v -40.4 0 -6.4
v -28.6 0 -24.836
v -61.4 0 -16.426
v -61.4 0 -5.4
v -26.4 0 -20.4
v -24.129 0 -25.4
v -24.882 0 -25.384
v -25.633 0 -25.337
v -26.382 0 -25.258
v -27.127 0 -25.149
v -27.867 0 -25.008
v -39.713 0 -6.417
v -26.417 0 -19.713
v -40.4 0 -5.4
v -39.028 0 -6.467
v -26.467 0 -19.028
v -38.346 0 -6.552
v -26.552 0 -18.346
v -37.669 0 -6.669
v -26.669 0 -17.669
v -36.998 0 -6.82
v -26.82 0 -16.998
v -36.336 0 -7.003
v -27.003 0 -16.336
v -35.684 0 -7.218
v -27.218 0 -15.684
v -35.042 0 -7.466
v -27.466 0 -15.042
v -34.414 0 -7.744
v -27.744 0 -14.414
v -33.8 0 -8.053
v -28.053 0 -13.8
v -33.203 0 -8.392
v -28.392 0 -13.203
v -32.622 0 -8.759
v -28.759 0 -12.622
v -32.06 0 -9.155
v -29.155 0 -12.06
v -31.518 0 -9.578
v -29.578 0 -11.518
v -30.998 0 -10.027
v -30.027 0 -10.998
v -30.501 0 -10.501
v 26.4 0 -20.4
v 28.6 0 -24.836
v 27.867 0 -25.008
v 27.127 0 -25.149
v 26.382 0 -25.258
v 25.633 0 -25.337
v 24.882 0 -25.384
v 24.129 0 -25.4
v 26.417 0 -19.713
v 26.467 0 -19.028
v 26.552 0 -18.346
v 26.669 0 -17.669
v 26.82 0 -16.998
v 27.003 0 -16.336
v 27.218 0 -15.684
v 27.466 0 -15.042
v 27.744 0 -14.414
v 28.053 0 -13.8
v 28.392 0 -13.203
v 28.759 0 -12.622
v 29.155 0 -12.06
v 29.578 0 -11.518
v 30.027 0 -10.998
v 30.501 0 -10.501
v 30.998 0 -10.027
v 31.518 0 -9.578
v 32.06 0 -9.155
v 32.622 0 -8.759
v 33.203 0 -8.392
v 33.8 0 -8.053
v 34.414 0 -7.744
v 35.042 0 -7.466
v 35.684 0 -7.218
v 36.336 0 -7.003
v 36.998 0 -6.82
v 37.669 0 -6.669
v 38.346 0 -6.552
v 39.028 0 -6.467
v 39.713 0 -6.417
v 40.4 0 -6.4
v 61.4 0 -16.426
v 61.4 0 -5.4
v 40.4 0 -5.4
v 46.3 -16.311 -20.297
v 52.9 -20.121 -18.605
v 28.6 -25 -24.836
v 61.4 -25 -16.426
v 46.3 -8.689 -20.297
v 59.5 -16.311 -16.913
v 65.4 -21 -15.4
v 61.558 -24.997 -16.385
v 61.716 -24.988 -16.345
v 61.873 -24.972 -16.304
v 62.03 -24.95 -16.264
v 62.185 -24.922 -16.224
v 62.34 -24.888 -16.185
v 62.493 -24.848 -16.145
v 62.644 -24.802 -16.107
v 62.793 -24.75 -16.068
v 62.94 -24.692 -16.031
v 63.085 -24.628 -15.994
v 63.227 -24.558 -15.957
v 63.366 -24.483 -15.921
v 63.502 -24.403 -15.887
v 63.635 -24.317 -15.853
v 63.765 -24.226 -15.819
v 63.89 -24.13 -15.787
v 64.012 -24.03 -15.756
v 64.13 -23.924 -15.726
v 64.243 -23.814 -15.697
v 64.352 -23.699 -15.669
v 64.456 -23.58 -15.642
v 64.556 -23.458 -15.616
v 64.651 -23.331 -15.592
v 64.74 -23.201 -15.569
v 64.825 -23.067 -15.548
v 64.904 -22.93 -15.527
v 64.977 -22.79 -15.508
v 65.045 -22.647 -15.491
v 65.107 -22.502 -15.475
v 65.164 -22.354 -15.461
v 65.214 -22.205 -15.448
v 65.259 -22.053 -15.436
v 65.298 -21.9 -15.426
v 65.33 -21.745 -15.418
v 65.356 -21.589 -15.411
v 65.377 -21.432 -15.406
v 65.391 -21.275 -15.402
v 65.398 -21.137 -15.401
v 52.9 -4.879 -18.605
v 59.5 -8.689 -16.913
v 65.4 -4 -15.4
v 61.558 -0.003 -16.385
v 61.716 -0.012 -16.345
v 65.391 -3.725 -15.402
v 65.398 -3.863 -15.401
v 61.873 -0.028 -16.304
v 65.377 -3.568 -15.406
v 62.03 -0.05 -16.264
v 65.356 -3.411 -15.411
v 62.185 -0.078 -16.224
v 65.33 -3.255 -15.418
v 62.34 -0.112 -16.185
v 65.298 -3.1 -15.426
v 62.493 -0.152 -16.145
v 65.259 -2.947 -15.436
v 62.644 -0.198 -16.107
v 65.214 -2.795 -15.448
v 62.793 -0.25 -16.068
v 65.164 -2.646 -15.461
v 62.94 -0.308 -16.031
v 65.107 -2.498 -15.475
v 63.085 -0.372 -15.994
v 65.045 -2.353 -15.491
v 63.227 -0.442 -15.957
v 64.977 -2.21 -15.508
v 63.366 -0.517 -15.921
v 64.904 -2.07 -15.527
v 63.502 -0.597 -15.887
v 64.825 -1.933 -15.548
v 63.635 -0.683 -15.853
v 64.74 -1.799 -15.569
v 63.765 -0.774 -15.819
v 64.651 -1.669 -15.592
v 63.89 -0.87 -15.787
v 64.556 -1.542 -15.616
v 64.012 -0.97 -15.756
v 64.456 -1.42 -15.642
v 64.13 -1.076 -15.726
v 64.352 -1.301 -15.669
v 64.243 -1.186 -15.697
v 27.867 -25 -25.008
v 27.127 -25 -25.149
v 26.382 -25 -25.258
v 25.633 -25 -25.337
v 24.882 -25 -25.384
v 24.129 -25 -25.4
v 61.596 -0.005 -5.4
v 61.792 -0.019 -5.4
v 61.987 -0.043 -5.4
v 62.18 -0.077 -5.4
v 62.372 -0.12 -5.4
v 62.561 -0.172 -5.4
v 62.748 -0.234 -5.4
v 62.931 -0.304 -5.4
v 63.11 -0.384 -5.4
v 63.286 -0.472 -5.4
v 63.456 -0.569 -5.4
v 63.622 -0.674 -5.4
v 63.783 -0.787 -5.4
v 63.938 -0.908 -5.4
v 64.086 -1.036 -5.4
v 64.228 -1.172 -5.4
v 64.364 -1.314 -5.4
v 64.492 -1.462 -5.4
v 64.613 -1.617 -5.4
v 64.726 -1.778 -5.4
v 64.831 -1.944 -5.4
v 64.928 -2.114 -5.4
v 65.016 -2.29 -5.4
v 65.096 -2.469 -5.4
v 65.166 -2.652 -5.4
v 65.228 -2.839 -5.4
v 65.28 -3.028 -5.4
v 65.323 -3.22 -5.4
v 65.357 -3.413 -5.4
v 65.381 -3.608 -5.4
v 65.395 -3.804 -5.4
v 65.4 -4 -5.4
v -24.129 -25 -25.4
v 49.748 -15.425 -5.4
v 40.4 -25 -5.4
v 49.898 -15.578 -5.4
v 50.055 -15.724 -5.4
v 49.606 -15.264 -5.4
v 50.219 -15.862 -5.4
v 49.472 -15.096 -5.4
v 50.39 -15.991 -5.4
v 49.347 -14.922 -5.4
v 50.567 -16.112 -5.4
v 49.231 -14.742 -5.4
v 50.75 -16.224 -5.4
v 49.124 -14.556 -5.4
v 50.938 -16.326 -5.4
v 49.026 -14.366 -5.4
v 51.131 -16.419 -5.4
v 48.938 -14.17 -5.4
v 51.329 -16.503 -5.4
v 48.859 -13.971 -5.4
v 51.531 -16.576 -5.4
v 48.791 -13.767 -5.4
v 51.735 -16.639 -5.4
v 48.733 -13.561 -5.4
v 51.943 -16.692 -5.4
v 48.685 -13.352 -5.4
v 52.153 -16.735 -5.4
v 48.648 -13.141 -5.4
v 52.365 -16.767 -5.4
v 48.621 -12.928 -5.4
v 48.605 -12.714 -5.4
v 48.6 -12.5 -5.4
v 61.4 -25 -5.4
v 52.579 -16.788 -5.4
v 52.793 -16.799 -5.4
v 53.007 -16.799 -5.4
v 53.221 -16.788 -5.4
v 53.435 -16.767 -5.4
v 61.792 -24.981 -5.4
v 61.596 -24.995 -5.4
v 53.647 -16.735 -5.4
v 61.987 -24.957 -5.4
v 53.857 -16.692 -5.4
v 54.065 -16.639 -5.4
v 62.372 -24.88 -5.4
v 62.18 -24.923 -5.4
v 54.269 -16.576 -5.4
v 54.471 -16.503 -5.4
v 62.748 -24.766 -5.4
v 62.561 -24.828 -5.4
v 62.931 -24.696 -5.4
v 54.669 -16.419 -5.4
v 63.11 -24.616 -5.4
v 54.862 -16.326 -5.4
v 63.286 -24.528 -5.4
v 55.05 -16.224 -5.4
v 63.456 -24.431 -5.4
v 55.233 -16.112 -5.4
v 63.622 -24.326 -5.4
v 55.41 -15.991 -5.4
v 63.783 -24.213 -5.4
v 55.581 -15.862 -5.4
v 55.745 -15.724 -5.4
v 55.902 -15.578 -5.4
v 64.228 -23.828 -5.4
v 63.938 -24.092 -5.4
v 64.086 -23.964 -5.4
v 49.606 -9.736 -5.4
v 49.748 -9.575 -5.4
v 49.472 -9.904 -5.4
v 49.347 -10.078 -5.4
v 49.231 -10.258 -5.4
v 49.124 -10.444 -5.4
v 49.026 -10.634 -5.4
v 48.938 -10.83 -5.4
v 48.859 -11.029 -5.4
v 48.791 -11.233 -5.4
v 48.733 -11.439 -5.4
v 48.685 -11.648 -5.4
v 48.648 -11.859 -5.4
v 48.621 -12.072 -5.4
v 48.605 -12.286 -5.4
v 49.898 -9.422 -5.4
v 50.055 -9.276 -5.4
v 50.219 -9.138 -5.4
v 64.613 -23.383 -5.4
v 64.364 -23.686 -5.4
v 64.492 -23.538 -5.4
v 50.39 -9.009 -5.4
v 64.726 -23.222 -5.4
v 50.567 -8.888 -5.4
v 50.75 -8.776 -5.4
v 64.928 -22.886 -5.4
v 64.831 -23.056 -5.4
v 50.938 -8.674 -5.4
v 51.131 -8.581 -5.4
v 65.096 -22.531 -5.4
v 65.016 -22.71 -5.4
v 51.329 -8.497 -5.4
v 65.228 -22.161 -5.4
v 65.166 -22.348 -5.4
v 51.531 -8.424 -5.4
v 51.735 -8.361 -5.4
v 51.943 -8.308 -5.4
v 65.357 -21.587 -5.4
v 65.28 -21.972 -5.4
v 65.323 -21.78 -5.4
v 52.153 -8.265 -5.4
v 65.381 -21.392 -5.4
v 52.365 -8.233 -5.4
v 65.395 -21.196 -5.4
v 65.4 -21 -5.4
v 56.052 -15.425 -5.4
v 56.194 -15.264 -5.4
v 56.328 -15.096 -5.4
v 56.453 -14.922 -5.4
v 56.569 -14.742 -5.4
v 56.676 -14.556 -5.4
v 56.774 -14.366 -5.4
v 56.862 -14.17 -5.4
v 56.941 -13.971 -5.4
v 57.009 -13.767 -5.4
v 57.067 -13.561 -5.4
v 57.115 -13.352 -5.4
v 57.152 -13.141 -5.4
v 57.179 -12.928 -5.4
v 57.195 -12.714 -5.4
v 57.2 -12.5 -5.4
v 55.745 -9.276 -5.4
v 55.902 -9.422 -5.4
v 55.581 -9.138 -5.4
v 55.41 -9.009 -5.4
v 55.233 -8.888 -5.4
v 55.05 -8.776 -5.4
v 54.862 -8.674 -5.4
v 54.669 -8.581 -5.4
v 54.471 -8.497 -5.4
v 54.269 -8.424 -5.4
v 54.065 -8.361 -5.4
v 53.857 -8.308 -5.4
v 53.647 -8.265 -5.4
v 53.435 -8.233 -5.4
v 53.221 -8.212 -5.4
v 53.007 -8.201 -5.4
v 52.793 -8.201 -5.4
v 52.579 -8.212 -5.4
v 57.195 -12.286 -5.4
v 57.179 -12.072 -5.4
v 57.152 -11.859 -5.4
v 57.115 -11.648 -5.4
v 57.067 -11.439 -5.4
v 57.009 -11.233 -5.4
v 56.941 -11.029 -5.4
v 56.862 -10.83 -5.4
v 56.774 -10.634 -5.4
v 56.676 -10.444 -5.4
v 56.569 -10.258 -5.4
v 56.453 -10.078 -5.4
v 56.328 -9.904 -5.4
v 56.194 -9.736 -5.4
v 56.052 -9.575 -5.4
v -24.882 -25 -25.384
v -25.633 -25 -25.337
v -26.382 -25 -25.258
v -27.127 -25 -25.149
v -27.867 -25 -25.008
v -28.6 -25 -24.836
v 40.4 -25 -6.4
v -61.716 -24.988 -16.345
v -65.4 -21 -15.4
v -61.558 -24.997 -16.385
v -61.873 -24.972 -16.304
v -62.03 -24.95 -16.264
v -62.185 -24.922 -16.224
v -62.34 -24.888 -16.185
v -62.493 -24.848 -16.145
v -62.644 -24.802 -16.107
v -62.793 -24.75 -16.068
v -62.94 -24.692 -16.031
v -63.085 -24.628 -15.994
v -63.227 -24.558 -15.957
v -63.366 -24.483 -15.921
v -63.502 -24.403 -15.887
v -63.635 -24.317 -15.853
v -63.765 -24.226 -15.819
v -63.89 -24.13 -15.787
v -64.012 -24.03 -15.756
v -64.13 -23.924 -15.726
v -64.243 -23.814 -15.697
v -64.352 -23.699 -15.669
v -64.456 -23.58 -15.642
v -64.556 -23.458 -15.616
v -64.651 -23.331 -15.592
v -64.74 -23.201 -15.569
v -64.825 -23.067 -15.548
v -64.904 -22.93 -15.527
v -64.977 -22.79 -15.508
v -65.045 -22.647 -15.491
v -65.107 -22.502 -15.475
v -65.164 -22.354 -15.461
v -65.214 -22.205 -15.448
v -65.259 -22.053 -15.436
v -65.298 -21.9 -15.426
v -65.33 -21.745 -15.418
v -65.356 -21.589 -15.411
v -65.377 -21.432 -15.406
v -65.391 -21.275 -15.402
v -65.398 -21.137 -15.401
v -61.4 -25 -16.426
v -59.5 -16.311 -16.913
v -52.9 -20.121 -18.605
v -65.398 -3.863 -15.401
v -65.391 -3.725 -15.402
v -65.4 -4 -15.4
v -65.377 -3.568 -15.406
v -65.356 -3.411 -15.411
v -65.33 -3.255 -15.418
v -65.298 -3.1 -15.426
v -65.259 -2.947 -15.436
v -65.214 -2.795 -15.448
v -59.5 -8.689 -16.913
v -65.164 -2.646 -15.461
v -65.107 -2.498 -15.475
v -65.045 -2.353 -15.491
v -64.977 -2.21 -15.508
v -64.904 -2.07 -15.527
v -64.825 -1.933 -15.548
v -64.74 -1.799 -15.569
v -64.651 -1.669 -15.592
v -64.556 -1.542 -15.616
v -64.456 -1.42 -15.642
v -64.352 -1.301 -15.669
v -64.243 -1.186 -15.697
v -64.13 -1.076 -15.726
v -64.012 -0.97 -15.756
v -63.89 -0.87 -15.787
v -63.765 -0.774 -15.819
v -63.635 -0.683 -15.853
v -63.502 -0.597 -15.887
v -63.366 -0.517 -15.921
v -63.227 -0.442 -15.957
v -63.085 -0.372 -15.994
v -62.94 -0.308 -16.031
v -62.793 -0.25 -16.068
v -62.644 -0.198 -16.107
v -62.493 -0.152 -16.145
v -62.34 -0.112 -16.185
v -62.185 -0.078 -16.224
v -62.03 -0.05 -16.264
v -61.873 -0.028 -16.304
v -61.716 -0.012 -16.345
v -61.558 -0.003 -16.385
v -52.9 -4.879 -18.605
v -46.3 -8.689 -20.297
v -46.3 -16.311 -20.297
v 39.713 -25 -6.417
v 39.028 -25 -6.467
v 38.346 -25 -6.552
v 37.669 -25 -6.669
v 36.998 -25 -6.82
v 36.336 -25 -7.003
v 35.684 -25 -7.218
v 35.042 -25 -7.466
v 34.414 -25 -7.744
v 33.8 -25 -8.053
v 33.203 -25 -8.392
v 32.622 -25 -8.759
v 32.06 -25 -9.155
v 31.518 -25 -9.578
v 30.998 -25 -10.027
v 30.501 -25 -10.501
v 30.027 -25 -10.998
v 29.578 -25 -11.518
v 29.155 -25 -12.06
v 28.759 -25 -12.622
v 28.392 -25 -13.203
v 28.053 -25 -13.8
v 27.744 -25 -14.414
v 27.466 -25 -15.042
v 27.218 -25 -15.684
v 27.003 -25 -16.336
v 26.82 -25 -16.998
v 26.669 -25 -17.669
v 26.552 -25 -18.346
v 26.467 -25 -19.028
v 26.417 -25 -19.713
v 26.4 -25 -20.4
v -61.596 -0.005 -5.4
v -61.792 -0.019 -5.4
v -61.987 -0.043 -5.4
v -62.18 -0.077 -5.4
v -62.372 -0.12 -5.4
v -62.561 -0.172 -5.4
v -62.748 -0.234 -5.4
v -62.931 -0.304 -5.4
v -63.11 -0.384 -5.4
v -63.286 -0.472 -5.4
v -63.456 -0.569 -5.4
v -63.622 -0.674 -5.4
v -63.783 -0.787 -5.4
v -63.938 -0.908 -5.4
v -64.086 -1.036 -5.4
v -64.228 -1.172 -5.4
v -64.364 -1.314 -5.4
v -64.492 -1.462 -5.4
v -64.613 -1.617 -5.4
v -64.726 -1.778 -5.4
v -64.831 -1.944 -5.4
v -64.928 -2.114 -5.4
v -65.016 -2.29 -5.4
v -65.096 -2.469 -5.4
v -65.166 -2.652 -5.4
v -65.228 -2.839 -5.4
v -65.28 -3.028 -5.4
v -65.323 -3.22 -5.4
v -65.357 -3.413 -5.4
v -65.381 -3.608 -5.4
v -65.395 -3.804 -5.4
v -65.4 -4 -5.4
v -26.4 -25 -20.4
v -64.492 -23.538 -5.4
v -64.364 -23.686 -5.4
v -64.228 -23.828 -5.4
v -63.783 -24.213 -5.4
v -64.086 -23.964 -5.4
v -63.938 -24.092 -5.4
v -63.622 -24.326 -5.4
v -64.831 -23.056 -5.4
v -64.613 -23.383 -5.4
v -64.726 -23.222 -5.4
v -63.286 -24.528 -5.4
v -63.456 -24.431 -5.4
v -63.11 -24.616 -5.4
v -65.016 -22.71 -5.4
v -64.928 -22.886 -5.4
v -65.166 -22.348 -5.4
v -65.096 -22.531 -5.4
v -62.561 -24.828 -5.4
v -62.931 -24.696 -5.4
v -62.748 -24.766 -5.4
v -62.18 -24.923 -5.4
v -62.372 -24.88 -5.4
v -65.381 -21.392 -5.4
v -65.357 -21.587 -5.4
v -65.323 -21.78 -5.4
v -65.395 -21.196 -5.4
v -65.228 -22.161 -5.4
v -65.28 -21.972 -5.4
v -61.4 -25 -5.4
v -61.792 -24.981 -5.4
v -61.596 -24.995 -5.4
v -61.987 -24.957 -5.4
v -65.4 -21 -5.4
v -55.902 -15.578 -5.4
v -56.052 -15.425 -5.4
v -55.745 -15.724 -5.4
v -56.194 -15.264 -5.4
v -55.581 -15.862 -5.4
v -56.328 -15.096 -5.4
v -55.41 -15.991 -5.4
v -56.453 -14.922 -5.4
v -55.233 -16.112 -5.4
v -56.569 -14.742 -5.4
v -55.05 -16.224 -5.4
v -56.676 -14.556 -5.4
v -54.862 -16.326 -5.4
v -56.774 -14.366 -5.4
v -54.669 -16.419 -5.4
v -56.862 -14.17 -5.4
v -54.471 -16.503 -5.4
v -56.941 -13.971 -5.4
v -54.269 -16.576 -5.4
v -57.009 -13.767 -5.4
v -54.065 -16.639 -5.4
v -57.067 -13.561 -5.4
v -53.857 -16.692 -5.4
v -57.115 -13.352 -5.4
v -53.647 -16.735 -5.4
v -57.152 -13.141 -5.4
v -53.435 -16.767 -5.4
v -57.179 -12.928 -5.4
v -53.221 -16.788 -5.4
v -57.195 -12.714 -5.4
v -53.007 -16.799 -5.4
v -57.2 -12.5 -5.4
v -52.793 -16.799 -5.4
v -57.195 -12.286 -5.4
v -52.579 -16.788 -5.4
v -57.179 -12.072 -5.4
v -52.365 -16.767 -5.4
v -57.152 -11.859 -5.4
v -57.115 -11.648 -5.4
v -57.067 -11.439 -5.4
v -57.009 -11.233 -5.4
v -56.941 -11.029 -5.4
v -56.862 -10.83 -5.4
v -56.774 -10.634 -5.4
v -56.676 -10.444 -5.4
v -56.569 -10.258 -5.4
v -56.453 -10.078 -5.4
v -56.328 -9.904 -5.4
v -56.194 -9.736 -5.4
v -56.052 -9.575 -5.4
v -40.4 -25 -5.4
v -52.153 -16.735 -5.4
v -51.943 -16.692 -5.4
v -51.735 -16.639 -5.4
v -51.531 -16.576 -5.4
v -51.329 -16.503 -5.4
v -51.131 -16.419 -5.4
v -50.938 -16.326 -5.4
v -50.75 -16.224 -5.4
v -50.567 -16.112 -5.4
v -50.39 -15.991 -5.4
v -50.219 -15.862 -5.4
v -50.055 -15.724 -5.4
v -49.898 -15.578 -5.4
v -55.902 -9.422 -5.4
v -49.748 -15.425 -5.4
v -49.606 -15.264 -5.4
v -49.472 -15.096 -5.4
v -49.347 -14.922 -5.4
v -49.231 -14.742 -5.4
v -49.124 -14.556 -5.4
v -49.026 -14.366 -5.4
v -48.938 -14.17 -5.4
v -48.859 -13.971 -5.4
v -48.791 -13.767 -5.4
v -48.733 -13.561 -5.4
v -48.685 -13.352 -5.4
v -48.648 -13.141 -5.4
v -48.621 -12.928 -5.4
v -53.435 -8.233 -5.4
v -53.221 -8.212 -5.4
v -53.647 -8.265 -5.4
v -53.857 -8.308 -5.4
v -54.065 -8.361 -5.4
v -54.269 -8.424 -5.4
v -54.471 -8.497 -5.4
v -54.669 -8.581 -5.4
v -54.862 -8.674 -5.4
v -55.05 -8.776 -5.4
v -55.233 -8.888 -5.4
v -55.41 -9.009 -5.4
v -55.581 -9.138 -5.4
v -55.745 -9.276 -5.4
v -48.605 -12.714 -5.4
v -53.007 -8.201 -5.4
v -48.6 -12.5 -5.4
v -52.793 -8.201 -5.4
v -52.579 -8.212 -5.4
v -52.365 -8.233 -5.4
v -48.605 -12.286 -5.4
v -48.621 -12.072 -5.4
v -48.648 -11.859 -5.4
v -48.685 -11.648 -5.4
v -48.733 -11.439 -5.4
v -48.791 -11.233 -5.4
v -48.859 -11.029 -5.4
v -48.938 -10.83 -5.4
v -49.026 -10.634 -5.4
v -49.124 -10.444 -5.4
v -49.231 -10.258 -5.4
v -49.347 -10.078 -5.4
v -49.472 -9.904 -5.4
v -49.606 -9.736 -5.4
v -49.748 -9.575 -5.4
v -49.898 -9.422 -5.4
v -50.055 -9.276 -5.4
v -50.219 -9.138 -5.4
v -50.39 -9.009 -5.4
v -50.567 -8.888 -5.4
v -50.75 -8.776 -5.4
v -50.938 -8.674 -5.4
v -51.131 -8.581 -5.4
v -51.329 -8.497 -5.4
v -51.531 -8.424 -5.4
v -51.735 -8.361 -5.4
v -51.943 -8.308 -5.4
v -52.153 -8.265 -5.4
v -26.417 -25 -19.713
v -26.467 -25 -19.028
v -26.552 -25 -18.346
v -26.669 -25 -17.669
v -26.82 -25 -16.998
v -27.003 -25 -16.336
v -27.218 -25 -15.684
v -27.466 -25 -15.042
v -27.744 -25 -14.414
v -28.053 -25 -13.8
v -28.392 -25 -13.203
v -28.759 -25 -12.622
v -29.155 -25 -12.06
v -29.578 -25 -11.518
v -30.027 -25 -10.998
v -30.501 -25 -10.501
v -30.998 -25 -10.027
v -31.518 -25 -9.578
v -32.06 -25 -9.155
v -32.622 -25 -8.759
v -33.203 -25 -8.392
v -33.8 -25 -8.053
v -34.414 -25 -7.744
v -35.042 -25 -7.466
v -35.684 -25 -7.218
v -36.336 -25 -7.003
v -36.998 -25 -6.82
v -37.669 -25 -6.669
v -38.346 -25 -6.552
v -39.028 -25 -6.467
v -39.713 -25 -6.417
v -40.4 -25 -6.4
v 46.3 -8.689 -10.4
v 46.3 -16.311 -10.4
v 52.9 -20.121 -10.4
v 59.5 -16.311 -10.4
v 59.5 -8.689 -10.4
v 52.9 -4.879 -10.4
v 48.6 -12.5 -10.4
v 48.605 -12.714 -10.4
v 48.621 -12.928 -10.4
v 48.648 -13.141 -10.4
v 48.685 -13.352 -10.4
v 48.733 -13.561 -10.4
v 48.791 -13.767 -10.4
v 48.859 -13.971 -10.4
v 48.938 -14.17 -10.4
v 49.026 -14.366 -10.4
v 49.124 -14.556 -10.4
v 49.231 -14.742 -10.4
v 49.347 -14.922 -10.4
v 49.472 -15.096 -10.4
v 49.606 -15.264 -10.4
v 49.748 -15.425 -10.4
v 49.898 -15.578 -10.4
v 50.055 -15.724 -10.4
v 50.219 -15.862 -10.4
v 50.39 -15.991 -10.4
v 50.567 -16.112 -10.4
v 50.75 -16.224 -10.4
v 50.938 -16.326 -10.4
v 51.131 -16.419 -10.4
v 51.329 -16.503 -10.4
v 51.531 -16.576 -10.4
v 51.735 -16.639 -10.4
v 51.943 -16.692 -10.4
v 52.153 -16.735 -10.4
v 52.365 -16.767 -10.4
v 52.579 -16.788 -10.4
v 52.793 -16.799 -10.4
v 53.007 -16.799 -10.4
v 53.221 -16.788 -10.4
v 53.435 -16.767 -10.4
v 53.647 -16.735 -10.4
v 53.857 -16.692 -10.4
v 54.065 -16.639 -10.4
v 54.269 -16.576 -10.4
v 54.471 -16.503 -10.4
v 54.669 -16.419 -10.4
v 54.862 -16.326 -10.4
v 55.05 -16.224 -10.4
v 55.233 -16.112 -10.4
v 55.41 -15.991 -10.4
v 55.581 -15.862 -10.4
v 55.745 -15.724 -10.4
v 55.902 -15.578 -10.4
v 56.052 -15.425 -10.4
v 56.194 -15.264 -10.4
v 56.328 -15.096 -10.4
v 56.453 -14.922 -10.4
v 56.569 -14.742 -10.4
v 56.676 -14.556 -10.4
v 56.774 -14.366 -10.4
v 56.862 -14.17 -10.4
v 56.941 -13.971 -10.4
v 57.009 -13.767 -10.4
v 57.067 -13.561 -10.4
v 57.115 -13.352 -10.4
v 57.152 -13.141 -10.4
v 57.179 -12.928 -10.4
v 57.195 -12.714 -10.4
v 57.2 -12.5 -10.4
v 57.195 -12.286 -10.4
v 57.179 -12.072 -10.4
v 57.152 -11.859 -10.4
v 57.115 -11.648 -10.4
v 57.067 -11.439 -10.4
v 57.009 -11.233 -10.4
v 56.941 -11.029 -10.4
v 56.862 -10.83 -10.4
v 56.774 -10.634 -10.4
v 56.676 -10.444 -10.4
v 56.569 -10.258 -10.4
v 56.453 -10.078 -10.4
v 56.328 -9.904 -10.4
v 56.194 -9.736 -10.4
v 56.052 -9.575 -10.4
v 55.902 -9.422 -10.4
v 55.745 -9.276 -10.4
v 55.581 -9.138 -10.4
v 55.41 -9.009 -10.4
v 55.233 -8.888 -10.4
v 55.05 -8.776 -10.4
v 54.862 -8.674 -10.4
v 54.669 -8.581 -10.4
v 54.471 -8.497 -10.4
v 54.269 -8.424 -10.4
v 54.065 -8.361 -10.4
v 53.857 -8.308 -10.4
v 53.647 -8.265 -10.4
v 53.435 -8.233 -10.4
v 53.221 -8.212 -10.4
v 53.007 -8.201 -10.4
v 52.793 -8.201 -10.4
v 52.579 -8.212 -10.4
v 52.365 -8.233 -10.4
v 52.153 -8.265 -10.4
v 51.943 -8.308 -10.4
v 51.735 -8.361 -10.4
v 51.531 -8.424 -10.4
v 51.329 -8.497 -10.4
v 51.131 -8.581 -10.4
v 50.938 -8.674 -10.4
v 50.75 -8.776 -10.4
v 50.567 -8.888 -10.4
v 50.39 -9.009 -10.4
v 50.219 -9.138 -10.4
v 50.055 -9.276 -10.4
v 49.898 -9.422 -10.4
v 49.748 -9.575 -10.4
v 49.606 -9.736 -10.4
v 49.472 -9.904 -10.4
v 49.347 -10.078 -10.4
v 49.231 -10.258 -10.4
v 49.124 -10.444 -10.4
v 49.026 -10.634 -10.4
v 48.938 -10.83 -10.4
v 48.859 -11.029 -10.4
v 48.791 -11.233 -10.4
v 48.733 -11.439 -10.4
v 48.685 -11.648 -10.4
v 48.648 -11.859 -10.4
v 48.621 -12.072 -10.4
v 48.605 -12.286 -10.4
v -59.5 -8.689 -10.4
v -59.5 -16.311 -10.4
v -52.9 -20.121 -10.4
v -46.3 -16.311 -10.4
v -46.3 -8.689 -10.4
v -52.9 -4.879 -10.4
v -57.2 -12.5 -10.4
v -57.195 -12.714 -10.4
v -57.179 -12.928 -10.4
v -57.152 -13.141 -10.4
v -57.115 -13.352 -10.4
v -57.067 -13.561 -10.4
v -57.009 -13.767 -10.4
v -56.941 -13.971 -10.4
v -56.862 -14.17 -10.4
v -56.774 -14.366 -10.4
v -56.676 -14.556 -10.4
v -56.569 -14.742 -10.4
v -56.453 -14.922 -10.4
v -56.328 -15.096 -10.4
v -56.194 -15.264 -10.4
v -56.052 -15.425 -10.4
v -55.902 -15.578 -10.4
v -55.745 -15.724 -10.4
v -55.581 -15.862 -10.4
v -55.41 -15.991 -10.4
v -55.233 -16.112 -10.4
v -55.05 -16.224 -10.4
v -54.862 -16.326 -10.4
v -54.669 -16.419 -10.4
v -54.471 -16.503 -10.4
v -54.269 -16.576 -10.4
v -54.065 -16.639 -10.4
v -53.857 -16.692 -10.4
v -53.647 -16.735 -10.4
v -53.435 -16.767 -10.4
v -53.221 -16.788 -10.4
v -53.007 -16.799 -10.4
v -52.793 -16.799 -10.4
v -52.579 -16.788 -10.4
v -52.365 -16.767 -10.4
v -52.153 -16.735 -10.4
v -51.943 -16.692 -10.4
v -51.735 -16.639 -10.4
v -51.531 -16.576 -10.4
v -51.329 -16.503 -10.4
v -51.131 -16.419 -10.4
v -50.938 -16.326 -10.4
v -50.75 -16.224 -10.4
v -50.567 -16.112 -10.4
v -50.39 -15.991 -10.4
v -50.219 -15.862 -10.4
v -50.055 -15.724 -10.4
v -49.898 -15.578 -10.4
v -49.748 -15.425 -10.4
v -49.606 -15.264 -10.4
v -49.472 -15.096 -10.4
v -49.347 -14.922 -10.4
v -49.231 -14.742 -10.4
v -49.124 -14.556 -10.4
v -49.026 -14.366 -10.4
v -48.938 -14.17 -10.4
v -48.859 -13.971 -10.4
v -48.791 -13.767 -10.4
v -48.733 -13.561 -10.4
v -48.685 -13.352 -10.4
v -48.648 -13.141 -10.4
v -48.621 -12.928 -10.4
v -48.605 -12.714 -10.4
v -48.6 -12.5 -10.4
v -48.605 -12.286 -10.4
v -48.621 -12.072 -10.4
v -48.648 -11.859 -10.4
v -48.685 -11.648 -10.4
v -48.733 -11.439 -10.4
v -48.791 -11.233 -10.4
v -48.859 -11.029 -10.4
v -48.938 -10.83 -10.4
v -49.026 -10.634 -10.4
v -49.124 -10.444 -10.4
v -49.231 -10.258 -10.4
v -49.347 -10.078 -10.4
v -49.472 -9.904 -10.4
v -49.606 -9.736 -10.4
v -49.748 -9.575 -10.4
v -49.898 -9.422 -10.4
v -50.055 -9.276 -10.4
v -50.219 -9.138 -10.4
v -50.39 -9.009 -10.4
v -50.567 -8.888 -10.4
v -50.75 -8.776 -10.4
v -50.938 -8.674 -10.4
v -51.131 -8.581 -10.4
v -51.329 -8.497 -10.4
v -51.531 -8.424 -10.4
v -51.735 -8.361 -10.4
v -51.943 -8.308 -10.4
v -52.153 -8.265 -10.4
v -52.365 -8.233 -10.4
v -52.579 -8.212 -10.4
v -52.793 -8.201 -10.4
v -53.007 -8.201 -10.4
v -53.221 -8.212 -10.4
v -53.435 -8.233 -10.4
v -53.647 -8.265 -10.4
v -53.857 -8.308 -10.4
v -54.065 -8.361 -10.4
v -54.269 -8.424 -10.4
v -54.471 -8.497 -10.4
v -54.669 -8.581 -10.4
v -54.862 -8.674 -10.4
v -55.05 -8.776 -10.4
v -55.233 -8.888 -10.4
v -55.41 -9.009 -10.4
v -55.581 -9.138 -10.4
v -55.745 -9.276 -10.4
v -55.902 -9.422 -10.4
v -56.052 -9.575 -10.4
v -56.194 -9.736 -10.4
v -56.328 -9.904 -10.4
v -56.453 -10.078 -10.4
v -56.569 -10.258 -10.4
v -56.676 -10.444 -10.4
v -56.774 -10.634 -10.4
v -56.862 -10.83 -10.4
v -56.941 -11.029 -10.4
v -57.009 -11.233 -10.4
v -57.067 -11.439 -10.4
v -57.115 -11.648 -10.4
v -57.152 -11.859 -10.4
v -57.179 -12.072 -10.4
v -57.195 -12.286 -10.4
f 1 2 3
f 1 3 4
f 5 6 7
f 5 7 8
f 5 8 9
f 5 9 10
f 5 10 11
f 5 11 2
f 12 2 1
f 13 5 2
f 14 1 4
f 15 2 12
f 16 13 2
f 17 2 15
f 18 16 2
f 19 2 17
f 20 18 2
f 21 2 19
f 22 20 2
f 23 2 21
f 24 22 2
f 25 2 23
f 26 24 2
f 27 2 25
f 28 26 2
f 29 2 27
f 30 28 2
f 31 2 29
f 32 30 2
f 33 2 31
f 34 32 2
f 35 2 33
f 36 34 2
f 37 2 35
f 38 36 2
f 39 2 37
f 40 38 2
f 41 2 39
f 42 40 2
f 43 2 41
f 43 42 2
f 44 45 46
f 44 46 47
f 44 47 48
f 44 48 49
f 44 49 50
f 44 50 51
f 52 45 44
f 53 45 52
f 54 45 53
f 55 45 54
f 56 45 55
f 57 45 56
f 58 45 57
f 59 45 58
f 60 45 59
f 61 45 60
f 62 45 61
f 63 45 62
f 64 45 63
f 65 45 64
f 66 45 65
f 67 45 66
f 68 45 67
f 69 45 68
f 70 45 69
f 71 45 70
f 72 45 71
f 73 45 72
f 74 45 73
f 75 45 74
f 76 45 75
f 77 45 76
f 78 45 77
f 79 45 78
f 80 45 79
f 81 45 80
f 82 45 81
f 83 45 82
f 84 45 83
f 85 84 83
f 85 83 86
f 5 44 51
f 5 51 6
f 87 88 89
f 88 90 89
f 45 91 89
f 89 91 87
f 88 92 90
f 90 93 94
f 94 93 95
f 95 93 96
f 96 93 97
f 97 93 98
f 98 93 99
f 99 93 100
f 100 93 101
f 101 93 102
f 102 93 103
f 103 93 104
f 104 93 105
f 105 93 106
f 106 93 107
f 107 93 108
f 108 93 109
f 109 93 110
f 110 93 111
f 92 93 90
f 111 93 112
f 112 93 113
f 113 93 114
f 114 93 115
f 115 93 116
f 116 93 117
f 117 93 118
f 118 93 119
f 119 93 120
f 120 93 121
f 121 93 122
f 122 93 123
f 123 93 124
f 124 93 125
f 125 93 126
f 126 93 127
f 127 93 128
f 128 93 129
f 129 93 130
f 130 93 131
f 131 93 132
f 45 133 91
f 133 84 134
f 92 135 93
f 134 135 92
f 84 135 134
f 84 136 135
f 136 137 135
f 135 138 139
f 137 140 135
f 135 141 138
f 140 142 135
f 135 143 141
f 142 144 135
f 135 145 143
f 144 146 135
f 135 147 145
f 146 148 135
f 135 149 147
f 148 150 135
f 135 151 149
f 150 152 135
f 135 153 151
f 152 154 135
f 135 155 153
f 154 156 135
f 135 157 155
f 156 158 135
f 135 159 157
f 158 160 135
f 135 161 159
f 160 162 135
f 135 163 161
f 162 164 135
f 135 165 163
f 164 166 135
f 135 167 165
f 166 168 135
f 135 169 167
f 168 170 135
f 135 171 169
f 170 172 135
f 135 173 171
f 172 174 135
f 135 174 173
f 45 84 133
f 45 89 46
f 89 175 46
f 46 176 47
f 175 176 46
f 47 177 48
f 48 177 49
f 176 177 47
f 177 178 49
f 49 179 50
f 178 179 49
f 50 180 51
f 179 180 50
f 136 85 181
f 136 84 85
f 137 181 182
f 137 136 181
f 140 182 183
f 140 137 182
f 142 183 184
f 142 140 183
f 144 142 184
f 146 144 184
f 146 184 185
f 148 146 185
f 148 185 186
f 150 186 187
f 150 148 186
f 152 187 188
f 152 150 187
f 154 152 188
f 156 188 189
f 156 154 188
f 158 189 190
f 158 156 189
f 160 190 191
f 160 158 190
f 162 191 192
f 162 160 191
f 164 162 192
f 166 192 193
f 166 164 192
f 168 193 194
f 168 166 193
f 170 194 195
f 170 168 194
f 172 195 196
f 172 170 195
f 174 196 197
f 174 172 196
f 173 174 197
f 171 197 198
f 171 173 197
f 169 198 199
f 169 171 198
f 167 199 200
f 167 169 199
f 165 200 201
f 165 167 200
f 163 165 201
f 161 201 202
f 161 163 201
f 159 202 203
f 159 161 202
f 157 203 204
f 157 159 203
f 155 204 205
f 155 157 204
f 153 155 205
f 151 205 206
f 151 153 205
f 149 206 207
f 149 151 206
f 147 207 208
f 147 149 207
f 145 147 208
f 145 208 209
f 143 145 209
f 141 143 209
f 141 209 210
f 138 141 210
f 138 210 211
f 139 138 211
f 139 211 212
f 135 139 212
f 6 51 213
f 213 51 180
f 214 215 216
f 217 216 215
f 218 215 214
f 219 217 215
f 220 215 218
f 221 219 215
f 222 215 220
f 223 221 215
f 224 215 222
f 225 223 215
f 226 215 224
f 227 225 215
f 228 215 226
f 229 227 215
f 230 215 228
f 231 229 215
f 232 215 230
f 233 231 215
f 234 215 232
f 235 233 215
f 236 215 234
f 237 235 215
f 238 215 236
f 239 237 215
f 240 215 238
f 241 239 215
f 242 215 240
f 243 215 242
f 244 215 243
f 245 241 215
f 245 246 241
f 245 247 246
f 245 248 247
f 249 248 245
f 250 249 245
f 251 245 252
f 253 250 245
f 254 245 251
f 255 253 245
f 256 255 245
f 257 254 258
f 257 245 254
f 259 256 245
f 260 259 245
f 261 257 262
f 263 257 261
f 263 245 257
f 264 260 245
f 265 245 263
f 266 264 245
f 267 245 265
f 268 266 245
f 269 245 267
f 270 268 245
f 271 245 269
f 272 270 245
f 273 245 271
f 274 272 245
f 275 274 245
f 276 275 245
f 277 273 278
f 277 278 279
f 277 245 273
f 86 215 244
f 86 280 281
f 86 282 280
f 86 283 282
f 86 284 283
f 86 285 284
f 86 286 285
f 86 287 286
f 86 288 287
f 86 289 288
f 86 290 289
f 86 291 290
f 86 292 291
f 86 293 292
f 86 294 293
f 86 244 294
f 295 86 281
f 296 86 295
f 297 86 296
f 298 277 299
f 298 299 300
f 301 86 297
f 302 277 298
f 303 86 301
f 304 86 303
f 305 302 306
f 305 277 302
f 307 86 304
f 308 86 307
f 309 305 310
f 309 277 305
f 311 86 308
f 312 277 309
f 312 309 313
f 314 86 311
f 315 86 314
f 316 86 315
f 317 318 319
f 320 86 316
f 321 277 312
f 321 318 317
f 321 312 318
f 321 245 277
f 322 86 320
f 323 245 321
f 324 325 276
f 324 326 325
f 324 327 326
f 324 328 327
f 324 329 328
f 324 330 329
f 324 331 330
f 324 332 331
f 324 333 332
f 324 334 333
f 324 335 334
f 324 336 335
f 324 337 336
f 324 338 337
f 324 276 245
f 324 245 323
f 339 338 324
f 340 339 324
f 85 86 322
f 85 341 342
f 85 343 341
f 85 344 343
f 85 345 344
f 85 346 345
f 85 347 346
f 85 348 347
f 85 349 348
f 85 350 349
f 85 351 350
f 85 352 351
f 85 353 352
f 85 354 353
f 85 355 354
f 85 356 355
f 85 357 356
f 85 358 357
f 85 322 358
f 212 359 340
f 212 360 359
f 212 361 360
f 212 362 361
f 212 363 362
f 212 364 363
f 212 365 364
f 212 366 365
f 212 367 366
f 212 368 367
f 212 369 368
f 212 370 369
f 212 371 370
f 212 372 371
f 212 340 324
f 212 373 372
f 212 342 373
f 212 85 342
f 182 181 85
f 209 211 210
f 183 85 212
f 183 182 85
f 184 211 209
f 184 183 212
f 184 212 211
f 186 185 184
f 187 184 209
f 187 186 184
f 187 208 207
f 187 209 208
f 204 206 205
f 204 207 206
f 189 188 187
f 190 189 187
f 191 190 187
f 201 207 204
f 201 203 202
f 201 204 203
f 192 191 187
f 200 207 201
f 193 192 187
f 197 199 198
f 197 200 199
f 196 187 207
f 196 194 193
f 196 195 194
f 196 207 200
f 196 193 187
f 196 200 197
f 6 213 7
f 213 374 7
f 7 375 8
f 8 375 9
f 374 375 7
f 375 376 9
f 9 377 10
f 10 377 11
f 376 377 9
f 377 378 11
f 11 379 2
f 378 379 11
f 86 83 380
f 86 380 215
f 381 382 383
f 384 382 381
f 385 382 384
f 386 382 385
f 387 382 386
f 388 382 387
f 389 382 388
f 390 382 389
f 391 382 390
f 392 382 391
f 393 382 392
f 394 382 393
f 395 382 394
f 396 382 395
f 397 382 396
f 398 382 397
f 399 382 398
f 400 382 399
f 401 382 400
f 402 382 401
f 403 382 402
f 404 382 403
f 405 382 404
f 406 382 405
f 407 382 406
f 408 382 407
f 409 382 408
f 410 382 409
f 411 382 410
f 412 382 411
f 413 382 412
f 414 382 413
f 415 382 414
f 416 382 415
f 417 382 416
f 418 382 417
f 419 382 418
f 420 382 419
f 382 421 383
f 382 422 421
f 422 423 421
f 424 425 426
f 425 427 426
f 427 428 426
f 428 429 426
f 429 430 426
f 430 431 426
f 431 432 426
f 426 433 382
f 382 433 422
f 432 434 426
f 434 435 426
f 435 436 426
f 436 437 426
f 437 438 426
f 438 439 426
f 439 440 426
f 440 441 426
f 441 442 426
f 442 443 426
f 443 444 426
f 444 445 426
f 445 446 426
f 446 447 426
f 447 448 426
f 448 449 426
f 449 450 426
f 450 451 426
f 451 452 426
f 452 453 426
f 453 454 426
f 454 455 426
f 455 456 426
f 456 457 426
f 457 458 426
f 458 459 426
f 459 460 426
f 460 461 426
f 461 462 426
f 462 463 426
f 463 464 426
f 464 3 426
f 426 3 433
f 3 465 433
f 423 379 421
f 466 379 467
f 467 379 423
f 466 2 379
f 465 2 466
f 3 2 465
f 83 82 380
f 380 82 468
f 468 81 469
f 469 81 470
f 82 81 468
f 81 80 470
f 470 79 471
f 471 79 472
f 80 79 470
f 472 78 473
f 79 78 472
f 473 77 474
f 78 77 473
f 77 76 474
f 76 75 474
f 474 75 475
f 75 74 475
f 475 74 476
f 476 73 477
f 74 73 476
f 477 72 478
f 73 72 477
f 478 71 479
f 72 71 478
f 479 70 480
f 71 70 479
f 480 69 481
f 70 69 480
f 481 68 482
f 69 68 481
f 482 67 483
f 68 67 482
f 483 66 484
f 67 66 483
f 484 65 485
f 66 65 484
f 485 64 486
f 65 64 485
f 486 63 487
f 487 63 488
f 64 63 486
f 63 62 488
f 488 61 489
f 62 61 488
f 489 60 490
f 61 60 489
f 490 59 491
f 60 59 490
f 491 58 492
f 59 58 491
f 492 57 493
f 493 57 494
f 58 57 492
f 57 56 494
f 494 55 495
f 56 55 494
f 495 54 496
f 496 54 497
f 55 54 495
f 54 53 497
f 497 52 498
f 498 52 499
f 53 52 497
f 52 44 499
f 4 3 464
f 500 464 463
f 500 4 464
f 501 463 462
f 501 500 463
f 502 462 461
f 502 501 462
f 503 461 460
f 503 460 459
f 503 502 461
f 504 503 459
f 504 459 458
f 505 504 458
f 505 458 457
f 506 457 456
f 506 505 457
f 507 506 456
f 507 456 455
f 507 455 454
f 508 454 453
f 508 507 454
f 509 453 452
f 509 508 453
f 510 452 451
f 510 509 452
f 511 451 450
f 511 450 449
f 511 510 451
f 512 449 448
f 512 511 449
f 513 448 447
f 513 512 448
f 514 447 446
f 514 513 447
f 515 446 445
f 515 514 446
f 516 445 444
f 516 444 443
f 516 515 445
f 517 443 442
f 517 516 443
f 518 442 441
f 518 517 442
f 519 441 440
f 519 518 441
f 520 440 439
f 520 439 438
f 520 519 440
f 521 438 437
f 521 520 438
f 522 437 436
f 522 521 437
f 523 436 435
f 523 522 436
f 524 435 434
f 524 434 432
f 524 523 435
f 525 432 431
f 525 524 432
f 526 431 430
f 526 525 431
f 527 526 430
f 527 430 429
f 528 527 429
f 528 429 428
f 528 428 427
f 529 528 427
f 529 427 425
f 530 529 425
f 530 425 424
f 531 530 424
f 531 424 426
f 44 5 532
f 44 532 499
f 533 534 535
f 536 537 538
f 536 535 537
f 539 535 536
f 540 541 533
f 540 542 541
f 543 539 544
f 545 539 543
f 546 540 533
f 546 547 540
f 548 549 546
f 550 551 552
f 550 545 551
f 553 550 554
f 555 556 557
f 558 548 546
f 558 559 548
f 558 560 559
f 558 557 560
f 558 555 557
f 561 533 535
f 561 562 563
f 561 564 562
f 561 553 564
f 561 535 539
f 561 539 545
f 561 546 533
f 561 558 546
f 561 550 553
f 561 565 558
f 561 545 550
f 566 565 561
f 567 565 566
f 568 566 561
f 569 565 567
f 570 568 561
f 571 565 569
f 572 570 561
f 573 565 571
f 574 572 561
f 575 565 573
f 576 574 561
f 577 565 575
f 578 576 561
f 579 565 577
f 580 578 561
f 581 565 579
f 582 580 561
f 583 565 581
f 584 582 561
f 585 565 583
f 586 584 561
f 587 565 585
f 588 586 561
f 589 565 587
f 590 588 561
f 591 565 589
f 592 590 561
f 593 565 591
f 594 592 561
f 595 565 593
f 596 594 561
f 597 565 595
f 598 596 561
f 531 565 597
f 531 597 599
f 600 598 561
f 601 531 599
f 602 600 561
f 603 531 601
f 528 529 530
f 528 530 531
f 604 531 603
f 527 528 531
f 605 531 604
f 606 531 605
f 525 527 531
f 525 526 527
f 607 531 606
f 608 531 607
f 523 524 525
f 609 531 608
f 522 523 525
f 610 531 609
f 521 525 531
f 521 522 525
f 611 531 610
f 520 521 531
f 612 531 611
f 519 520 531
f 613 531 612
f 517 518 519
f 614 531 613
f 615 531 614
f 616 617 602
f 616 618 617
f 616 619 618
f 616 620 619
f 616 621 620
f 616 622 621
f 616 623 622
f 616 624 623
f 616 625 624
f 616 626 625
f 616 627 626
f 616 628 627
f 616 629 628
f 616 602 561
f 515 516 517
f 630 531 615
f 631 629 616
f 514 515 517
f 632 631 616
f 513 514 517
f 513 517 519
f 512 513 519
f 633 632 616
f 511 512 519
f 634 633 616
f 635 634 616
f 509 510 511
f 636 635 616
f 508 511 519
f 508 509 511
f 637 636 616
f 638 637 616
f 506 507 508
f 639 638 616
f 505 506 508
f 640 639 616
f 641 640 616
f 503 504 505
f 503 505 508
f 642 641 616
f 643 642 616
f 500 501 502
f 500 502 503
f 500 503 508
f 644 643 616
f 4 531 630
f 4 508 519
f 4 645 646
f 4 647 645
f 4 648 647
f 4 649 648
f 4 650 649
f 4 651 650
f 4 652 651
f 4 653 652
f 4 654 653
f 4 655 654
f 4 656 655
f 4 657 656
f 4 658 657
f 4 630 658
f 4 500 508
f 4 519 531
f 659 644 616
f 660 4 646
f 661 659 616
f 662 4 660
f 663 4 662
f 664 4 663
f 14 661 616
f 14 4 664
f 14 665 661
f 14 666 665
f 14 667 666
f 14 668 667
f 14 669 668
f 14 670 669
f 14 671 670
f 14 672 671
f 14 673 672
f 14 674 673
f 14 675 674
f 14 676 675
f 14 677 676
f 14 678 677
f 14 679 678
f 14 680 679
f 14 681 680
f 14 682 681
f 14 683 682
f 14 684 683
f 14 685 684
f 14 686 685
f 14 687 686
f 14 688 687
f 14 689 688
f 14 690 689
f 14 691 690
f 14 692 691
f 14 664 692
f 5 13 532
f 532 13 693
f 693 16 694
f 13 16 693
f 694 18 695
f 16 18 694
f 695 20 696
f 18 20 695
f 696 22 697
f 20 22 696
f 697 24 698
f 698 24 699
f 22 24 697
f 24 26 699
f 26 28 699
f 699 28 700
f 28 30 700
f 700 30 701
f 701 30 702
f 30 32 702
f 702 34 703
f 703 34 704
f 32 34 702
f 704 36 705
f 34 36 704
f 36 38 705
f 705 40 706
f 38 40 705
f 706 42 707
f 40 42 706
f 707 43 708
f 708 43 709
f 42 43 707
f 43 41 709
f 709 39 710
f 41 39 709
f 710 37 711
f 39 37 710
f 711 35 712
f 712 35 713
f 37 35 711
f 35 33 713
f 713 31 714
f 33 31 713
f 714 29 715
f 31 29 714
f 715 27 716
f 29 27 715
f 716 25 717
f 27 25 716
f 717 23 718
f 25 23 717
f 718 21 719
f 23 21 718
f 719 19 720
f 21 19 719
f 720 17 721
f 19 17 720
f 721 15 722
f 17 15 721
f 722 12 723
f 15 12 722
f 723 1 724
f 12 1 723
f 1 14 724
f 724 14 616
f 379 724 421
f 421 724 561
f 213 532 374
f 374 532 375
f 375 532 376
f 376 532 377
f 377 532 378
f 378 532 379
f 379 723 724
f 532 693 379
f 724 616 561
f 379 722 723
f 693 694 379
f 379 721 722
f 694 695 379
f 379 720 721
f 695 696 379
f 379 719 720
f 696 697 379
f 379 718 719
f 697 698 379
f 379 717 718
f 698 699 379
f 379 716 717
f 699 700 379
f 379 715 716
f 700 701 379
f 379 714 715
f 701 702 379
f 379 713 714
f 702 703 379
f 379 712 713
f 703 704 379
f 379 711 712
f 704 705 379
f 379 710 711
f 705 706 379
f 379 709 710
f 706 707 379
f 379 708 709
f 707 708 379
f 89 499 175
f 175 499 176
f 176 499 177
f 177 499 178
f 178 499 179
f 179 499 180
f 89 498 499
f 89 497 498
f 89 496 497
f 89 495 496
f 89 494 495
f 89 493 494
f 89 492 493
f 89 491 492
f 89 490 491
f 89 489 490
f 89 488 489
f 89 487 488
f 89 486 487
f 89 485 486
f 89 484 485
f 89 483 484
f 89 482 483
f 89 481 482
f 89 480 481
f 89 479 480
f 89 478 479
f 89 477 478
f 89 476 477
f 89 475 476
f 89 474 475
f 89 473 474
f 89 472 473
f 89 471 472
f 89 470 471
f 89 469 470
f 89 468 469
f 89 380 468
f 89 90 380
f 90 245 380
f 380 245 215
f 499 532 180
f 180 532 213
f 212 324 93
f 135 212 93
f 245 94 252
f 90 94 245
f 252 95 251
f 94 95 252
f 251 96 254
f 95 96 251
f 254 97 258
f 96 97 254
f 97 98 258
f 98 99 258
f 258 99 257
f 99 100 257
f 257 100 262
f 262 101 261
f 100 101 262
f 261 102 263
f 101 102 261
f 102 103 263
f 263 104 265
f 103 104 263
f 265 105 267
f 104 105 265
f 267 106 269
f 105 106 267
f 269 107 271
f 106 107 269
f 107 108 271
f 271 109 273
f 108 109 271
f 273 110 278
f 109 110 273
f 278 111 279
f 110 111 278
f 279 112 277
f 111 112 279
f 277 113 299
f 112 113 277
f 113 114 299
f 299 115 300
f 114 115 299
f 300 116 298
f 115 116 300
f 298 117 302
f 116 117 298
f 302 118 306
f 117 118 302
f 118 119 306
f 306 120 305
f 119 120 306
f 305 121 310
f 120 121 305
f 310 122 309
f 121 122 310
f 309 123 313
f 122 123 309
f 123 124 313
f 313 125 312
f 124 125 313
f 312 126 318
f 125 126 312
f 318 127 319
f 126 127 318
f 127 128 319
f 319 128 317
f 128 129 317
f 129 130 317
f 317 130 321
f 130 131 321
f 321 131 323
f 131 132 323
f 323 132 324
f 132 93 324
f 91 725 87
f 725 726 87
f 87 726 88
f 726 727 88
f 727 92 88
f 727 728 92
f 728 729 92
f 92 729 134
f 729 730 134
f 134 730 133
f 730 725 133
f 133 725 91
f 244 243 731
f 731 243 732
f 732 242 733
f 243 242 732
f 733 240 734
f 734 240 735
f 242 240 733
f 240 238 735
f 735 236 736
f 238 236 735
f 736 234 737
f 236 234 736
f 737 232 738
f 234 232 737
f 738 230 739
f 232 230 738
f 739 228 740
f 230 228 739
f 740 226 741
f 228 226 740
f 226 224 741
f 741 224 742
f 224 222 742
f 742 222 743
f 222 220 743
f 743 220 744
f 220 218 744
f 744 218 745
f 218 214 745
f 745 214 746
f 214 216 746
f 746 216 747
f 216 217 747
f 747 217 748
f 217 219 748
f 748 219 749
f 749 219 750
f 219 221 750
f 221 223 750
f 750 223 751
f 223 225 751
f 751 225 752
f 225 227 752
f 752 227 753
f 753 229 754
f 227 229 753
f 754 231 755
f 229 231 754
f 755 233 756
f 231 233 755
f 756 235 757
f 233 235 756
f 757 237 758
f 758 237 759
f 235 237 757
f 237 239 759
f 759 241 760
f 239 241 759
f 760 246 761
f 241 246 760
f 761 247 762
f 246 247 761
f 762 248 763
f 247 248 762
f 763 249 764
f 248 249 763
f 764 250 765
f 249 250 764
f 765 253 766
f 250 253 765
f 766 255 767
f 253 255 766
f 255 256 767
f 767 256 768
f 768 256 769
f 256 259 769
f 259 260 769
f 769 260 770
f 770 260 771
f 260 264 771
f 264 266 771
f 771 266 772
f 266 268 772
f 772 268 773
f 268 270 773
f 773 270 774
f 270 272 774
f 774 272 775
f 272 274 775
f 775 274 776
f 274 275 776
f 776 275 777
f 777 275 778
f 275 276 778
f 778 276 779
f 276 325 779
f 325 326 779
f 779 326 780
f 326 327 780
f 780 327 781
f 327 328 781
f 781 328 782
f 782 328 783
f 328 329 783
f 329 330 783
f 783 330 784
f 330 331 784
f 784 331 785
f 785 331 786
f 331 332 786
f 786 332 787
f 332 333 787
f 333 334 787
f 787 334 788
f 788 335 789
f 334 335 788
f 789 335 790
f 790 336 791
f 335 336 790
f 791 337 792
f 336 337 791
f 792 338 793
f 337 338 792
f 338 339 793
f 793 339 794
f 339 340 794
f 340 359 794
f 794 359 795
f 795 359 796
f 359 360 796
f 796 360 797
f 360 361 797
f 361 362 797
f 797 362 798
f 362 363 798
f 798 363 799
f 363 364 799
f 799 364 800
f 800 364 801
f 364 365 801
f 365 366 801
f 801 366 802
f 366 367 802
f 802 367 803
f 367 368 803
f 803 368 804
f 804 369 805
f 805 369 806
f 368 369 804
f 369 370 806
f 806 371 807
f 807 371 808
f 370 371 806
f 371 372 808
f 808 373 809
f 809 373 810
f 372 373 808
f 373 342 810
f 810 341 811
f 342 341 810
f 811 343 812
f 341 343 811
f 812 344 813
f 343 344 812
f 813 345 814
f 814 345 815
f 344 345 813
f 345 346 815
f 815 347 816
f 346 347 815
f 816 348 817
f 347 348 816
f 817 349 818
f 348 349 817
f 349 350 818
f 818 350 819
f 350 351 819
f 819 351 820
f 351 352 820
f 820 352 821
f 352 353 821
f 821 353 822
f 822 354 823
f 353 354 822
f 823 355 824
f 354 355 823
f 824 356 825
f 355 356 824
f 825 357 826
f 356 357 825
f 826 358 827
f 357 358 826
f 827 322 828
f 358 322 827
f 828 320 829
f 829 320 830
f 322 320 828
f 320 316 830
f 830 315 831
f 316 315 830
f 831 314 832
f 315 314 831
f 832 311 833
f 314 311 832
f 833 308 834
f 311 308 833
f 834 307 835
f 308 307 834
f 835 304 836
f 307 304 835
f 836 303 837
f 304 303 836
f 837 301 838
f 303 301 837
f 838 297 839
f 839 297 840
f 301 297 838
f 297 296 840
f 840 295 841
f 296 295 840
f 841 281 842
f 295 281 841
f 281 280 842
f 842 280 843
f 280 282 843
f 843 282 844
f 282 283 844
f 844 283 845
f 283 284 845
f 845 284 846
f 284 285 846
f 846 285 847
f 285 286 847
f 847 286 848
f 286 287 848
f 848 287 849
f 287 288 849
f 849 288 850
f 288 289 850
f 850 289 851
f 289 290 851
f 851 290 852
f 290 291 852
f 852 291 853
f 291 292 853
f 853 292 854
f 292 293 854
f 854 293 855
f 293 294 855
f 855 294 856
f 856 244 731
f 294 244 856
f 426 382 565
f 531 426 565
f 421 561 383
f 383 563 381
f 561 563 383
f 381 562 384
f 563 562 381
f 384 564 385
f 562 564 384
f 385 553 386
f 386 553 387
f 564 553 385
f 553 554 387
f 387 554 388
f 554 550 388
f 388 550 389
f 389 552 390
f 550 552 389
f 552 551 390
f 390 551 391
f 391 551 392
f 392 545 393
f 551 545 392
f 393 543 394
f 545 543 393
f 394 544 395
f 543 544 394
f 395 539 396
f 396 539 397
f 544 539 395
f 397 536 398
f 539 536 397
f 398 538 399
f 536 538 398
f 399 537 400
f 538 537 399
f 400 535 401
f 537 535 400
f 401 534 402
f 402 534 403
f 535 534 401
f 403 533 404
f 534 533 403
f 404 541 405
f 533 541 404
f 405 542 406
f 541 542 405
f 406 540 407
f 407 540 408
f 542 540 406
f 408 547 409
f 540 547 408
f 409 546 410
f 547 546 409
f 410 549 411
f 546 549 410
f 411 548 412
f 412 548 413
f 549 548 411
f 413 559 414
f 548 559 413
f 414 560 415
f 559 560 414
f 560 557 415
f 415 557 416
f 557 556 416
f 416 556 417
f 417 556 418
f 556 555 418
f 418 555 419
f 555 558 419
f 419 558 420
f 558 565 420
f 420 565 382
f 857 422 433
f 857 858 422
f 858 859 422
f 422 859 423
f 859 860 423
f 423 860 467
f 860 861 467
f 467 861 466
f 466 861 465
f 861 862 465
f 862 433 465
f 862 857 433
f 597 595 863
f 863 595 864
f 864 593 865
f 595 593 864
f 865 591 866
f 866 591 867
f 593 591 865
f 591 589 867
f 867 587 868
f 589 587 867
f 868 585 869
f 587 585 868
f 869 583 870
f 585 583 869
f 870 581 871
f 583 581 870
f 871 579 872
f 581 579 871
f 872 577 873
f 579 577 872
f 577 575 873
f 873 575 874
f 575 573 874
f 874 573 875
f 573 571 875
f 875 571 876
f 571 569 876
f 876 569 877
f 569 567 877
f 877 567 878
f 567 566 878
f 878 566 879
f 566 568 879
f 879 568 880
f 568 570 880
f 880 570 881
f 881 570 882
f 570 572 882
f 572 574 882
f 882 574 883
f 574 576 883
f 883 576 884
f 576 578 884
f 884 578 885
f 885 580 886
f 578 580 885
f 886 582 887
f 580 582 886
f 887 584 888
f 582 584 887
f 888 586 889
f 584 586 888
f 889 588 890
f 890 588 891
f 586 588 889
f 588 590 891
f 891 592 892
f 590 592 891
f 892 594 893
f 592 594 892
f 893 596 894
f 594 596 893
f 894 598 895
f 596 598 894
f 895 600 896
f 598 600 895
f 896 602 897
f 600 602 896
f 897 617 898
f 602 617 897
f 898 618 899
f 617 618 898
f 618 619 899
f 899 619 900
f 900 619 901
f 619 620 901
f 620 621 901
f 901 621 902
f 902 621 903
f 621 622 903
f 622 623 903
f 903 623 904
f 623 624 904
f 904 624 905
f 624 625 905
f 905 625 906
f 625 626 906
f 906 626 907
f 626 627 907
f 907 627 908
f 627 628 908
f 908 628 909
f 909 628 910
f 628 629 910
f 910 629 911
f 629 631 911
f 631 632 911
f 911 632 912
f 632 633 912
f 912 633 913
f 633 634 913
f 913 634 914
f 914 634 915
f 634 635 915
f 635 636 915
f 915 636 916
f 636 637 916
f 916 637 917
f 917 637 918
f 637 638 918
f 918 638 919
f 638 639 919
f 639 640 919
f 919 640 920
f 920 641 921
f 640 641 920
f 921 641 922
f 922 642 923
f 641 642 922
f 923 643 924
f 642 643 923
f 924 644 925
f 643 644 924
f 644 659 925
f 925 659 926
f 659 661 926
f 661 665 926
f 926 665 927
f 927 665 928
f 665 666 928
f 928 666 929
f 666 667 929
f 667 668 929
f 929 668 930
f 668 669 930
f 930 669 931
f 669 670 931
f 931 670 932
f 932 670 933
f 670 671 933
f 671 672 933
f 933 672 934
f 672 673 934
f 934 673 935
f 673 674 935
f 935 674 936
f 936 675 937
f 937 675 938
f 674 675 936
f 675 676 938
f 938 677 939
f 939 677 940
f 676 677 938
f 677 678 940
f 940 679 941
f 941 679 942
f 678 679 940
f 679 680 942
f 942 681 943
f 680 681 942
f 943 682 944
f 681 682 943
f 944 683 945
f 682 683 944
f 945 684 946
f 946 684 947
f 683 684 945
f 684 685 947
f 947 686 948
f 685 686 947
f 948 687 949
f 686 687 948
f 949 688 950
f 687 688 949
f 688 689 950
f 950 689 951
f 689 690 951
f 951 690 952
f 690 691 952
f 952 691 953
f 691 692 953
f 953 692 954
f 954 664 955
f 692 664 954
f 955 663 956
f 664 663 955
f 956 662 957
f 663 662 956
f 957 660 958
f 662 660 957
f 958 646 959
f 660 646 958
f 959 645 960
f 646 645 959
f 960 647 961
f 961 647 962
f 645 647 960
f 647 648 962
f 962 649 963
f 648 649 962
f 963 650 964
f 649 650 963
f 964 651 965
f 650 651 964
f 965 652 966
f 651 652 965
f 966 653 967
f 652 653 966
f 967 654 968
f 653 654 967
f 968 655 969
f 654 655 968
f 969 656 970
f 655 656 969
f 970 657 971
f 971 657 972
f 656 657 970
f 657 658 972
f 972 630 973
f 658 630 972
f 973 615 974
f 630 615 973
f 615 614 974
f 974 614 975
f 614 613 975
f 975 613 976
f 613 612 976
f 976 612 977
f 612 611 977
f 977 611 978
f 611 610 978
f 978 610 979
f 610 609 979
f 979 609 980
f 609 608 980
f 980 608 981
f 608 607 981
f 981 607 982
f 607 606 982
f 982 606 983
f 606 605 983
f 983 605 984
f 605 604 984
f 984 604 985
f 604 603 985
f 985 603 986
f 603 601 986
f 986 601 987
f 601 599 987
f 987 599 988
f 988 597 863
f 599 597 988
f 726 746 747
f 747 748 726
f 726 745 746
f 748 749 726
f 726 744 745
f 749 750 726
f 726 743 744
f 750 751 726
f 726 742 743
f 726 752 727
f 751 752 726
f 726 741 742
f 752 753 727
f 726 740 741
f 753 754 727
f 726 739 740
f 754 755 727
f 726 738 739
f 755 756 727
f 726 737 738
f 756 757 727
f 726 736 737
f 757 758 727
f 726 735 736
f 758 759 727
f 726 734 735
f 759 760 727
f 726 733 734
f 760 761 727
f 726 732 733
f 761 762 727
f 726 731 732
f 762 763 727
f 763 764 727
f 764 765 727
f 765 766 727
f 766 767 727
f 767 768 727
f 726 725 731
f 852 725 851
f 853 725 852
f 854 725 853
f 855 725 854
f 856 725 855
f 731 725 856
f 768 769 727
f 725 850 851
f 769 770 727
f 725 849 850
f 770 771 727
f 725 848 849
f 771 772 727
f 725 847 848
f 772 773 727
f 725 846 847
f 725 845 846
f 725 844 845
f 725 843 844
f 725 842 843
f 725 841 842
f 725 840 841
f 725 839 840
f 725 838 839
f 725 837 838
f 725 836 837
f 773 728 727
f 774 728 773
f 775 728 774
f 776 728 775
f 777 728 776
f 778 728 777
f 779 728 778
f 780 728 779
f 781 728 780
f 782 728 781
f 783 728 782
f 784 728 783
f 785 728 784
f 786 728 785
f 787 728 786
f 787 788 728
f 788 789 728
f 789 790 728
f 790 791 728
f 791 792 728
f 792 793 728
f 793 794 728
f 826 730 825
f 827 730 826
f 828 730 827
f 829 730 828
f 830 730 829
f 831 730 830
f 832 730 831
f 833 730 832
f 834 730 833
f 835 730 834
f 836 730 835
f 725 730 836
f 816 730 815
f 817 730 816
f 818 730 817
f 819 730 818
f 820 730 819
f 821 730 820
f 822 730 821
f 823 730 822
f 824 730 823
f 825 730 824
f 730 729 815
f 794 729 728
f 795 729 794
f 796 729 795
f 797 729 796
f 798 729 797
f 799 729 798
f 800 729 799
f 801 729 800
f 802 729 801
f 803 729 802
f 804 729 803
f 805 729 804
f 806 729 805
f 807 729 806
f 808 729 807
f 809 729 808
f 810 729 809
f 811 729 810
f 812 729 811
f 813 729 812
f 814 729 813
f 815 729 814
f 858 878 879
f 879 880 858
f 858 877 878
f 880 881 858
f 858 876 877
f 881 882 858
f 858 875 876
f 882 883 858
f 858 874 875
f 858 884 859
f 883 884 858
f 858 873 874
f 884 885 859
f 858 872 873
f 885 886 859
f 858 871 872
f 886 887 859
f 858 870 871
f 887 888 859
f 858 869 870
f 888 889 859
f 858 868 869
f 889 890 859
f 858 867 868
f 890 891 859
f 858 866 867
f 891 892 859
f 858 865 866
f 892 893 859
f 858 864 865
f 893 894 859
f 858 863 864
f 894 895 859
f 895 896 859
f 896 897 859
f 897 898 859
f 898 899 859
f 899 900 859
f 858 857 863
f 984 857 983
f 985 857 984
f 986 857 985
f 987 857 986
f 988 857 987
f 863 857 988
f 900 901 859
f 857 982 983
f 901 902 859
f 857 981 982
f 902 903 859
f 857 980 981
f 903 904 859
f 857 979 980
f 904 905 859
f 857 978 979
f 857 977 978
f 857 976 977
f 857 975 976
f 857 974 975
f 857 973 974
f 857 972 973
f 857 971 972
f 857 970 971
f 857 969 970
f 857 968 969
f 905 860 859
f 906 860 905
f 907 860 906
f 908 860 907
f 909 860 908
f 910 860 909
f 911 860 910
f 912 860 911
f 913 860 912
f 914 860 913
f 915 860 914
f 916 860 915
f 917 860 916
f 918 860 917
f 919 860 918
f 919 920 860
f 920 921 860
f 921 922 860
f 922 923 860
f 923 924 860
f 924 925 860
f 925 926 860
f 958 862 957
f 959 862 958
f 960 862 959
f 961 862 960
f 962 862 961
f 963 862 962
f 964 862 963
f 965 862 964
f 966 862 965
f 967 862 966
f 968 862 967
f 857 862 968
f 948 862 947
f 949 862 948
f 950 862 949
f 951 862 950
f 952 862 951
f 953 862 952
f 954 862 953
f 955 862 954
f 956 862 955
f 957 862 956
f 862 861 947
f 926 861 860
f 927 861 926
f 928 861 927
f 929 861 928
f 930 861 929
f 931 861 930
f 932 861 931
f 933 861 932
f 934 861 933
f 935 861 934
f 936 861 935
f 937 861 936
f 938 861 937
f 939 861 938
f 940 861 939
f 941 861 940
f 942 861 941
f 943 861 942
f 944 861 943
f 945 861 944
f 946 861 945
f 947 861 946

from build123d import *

# Parameters (mm, degrees)
PAD_DEPTH       = 25
SKETCH001_R     = 4.3
POCKET_DEPTH    = 20.001
POCKET001_DEPTH = 15.001
FILLET_R        = 4
FILLET001_R     = 18


with BuildPart() as part:
    # Sketch → Pad (new body)
    with BuildSketch(Plane.XZ):
        with BuildLine():
            Line((40.4, -5.4), (65.4, -5.4))
            Line((65.4, -5.4), (65.4, -15.4))
            Line((26.4, -25.4), (65.4, -15.4))
            Line((-26.4, -25.4), (26.4, -25.4))
            Line((-65.4, -15.4), (-26.4, -25.4))
            Line((-65.4, -15.4), (-65.4, -5.4))
            Line((-65.4, -5.4), (-40.4, -5.4))
            Line((-40.4, -6.4), (-40.4, -5.4))
            ThreePointArc((-26.4, -20.4), (-30.500505, -10.500505), (-40.4, -6.4))
            Line((-26.4, -20.4), (26.4, -20.4))
            ThreePointArc((40.4, -6.4), (30.500505, -10.500505), (26.4, -20.4))
            Line((40.4, -6.4), (40.4, -5.4))
        make_face()
    extrude(amount=PAD_DEPTH)

    # Sketch001 (on Face8 of Pad) → Pocket (cut, through all)
    with BuildSketch(Plane(origin=(0, 0, -5.4), x_dir=(-1, 0, 0), z_dir=(0, 0, 1))):
        with Locations((-52.9, 12.5)):
            Circle(SKETCH001_R)
        with Locations((52.9, 12.5)):
            Circle(SKETCH001_R)
    extrude(amount=-POCKET_DEPTH, mode=Mode.SUBTRACT)

    # Sketch002 (on Face13 of Pocket) → Pocket001 (cut, through all)
    with BuildSketch(Plane(origin=(0, 0, -10.4), x_dir=(-1, 0, 0), z_dir=(0, 0, 1))):
        Polygon((-46.3, 8.689488), (-46.3, 16.310512), (-52.9, 20.121024), (-59.5, 16.310512), (-59.5, 8.689488), (-52.9, 4.878976), align=None)
        Polygon((59.5, 8.689488), (59.5, 16.310512), (52.9, 20.121024), (46.3, 16.310512), (46.3, 8.689488), (52.9, 4.878976), align=None)
    extrude(amount=-POCKET001_DEPTH, mode=Mode.SUBTRACT)

    # Fillet
    fillet_edges = [part.edges().sort_by_distance(p)[0] for p in [
        (-65.4, -25, -10.4),
        (-65.4, 0, -10.4),
        (65.4, -25, -10.4),
        (65.4, 0, -10.4),
    ]]
    fillet(fillet_edges, radius=FILLET_R)

    # Fillet001
    fillet001_edges = [part.edges().sort_by_distance(p)[0] for p in [
        (-26.4, -12.5, -25.4),
        (26.4, -12.5, -25.4),
    ]]
    fillet(fillet001_edges, radius=FILLET001_R)


solid = part.part
